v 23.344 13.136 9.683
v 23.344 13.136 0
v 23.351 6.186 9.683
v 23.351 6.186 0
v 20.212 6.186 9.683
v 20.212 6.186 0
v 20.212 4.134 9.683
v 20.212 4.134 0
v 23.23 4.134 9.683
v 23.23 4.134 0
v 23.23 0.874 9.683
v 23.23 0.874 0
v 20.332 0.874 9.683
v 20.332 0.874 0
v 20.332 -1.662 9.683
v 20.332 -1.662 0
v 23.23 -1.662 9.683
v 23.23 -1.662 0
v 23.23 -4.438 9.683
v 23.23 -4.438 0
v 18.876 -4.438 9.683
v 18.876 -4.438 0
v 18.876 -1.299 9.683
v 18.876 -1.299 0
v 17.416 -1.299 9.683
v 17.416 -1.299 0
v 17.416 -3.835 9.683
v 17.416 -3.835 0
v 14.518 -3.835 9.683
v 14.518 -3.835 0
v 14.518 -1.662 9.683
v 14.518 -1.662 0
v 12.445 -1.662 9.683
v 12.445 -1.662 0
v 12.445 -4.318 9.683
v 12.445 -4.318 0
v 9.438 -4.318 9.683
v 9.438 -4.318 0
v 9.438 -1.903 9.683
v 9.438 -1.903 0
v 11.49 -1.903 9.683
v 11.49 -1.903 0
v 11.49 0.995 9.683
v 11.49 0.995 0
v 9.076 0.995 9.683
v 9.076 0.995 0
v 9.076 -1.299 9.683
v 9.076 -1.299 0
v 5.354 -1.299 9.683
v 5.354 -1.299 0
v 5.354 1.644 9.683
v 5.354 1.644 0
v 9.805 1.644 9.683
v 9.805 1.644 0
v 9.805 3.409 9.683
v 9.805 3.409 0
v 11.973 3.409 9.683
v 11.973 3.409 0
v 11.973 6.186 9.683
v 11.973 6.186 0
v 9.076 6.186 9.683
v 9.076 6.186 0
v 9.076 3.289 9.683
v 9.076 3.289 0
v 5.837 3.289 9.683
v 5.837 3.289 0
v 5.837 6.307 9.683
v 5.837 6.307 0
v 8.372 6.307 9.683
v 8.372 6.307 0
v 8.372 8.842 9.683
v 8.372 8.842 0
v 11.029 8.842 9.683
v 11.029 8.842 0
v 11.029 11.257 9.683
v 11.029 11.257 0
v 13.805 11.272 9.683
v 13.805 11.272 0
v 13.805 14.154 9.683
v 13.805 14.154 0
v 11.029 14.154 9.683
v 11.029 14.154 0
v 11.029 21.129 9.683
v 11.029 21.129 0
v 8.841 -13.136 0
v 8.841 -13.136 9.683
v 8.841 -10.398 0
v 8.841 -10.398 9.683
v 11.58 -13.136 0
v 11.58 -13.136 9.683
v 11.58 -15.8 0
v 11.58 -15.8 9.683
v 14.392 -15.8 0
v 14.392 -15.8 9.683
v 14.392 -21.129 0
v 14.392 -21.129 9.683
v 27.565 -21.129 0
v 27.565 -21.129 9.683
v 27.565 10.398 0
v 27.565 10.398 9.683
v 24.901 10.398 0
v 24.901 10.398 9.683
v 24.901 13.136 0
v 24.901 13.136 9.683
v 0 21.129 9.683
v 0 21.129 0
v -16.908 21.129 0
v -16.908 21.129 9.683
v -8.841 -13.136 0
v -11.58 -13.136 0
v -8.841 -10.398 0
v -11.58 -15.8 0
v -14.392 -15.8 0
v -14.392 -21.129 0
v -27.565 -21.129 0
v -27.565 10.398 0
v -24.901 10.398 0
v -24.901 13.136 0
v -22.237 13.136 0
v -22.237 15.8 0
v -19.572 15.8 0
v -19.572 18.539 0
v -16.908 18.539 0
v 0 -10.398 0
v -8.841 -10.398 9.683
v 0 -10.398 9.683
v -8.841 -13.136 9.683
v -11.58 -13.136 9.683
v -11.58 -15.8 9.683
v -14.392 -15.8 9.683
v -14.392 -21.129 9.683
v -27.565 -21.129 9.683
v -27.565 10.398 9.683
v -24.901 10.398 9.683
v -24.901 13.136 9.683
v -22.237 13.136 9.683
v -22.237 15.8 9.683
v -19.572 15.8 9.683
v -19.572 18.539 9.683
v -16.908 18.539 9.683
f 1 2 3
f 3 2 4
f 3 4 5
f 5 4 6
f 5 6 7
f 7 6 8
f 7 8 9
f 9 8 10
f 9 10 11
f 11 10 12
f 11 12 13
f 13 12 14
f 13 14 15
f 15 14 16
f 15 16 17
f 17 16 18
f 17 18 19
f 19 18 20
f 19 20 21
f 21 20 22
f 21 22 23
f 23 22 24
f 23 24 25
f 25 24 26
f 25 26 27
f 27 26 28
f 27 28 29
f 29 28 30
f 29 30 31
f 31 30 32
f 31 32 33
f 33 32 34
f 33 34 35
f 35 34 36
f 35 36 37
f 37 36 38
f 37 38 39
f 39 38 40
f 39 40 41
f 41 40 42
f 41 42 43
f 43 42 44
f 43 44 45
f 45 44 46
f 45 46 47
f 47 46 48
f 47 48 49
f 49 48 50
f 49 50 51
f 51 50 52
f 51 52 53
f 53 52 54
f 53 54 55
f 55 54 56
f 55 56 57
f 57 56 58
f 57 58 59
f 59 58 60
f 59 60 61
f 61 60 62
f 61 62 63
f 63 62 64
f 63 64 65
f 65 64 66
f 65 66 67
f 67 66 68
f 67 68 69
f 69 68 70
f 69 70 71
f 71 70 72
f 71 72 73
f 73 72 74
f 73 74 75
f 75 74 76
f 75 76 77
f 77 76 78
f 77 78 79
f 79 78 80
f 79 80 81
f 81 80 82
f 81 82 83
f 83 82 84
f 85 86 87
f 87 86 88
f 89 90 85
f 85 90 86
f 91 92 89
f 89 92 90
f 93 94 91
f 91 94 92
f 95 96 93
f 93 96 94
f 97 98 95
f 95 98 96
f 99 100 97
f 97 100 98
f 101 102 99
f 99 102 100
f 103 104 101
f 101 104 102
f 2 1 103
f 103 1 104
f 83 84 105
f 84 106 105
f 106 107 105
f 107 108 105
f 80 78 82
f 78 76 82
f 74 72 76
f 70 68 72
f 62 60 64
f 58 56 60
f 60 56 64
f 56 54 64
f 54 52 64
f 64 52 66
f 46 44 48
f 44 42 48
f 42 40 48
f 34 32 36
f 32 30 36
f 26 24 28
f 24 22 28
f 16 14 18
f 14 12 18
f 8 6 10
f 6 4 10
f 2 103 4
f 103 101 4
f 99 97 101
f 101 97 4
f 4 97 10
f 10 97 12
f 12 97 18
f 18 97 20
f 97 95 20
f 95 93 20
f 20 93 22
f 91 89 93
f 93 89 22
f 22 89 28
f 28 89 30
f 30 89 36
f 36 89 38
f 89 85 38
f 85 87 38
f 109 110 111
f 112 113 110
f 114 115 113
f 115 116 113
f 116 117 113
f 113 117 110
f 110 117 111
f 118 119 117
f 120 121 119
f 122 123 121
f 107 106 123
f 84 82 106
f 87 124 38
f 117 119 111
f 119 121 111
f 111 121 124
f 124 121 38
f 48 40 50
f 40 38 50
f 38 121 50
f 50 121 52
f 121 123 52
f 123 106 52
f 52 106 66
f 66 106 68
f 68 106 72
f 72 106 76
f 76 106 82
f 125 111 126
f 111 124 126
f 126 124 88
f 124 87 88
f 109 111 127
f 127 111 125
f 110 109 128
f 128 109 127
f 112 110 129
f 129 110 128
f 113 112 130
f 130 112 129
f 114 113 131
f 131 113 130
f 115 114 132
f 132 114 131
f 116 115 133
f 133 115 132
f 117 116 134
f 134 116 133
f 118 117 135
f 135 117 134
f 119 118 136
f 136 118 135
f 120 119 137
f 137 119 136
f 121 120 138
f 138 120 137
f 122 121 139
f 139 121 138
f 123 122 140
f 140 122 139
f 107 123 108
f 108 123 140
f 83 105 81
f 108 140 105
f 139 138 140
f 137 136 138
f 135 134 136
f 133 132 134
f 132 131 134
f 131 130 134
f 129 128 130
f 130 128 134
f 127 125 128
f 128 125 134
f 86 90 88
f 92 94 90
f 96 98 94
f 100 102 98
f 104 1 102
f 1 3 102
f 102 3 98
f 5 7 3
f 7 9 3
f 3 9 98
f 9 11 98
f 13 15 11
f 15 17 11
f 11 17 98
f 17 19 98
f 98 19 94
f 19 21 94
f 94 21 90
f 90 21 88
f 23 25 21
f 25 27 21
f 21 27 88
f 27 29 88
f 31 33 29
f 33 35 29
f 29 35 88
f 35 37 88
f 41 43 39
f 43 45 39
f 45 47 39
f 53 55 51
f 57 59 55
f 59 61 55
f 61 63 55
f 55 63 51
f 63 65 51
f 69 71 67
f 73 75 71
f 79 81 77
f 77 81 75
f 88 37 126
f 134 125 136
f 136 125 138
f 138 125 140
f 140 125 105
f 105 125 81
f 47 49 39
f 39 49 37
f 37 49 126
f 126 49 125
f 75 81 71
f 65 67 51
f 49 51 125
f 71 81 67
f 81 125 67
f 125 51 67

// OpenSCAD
module invaders_v2_sheild4() 
{
	polyhedron(
		points=[
			[23.34395, 13.13624, 9.683392],
			[23.34395, 13.13624, 4.440892e-16],
			[23.35063, 6.186107, 9.683389],
			[23.35063, 6.186107, 9.683389],
			[23.34395, 13.13624, 4.440892e-16],
			[23.35063, 6.186107, 8.881784e-16],
			[23.35063, 6.186107, 9.683389],
			[23.35063, 6.186107, 8.881784e-16],
			[20.21159, 6.186107, 9.683389],
			[20.21159, 6.186107, 9.683389],
			[23.35063, 6.186107, 8.881784e-16],
			[20.21159, 6.186107, 8.881784e-16],
			[20.21159, 6.186107, 9.683389],
			[20.21159, 6.186107, 8.881784e-16],
			[20.21159, 4.133647, 9.683389],
			[20.21159, 4.133647, 9.683389],
			[20.21159, 6.186107, 8.881784e-16],
			[20.21159, 4.133647, 9.992007e-16],
			[20.21159, 4.133647, 9.683389],
			[20.21159, 4.133647, 9.992007e-16],
			[23.2299, 4.133647, 9.683389],
			[23.2299, 4.133647, 9.683389],
			[20.21159, 4.133647, 9.992007e-16],
			[23.2299, 4.133647, 9.992007e-16],
			[23.2299, 4.133647, 9.683389],
			[23.2299, 4.133647, 9.992007e-16],
			[23.2299, 0.8738546, 9.683389],
			[23.2299, 0.8738546, 9.683389],
			[23.2299, 4.133647, 9.992007e-16],
			[23.2299, 0.8738546, 1.221245e-15],
			[23.2299, 0.8738546, 9.683389],
			[23.2299, 0.8738546, 1.221245e-15],
			[20.33232, 0.8738546, 9.683389],
			[20.33232, 0.8738546, 9.683389],
			[23.2299, 0.8738546, 1.221245e-15],
			[20.33232, 0.8738546, 1.221245e-15],
			[20.33232, 0.8738546, 9.683389],
			[20.33232, 0.8738546, 1.221245e-15],
			[20.33232, -1.661538, 9.683389],
			[20.33232, -1.661538, 9.683389],
			[20.33232, 0.8738546, 1.221245e-15],
			[20.33232, -1.661538, 1.332268e-15],
			[20.33232, -1.661538, 9.683389],
			[20.33232, -1.661538, 1.332268e-15],
			[23.2299, -1.661538, 9.683389],
			[23.2299, -1.661538, 9.683389],
			[20.33232, -1.661538, 1.332268e-15],
			[23.2299, -1.661538, 1.332268e-15],
			[23.2299, -1.661538, 9.683389],
			[23.2299, -1.661538, 1.332268e-15],
			[23.2299, -4.438397, 9.683389],
			[23.2299, -4.438397, 9.683389],
			[23.2299, -1.661538, 1.332268e-15],
			[23.2299, -4.438397, 1.554312e-15],
			[23.2299, -4.438397, 9.683389],
			[23.2299, -4.438397, 1.554312e-15],
			[18.87621, -4.438397, 9.683389],
			[18.87621, -4.438397, 9.683389],
			[23.2299, -4.438397, 1.554312e-15],
			[18.87621, -4.438397, 1.554312e-15],
			[18.87621, -4.438397, 9.683389],
			[18.87621, -4.438397, 1.554312e-15],
			[18.87621, -1.29934, 9.683389],
			[18.87621, -1.29934, 9.683389],
			[18.87621, -4.438397, 1.554312e-15],
			[18.87621, -1.29934, 1.332268e-15],
			[18.87621, -1.29934, 9.683389],
			[18.87621, -1.29934, 1.332268e-15],
			[17.41609, -1.29934, 9.683389],
			[17.41609, -1.29934, 9.683389],
			[18.87621, -1.29934, 1.332268e-15],
			[17.41609, -1.29934, 1.332268e-15],
			[17.41609, -1.29934, 9.683389],
			[17.41609, -1.29934, 1.332268e-15],
			[17.41609, -3.834733, 9.683389],
			[17.41609, -3.834733, 9.683389],
			[17.41609, -1.29934, 1.332268e-15],
			[17.41609, -3.834733, 1.44329e-15],
			[17.41609, -3.834733, 9.683389],
			[17.41609, -3.834733, 1.44329e-15],
			[14.51848, -3.834733, 9.683389],
			[14.51848, -3.834733, 9.683389],
			[17.41609, -3.834733, 1.44329e-15],
			[14.51848, -3.834733, 1.44329e-15],
			[14.51848, -3.834733, 9.683389],
			[14.51848, -3.834733, 1.44329e-15],
			[14.51848, -1.661538, 9.683389],
			[14.51848, -1.661538, 9.683389],
			[14.51848, -3.834733, 1.44329e-15],
			[14.51848, -1.661538, 1.332268e-15],
			[14.51848, -1.661538, 9.683389],
			[14.51848, -1.661538, 1.332268e-15],
			[12.44484, -1.661538, 9.683389],
			[12.44484, -1.661538, 9.683389],
			[14.51848, -1.661538, 1.332268e-15],
			[12.44484, -1.661538, 1.332268e-15],
			[12.44484, -1.661538, 9.683389],
			[12.44484, -1.661538, 1.332268e-15],
			[12.44484, -4.317666, 9.683389],
			[12.44484, -4.317666, 9.683389],
			[12.44484, -1.661538, 1.332268e-15],
			[12.44484, -4.317666, 1.554312e-15],
			[12.44484, -4.317666, 9.683389],
			[12.44484, -4.317666, 1.554312e-15],
			[9.43779, -4.317666, 9.683389],
			[9.43779, -4.317666, 9.683389],
			[12.44484, -4.317666, 1.554312e-15],
			[9.43779, -4.317666, 1.554312e-15],
			[9.43779, -4.317666, 9.683389],
			[9.43779, -4.317666, 1.554312e-15],
			[9.43779, -1.903005, 9.683389],
			[9.43779, -1.903005, 9.683389],
			[9.43779, -4.317666, 1.554312e-15],
			[9.43779, -1.903005, 1.332268e-15],
			[9.43779, -1.903005, 9.683389],
			[9.43779, -1.903005, 1.332268e-15],
			[11.49025, -1.903005, 9.683389],
			[11.49025, -1.903005, 9.683389],
			[9.43779, -1.903005, 1.332268e-15],
			[11.49025, -1.903005, 1.332268e-15],
			[11.49025, -1.903005, 9.683389],
			[11.49025, -1.903005, 1.332268e-15],
			[11.49025, 0.994586, 9.683389],
			[11.49025, 0.994586, 9.683389],
			[11.49025, -1.903005, 1.332268e-15],
			[11.49025, 0.994586, 1.221245e-15],
			[11.49025, 0.994586, 9.683389],
			[11.49025, 0.994586, 1.221245e-15],
			[9.075607, 0.994586, 9.683389],
			[9.075607, 0.994586, 9.683389],
			[11.49025, 0.994586, 1.221245e-15],
			[9.075607, 0.994586, 1.221245e-15],
			[9.075607, 0.994586, 9.683389],
			[9.075607, 0.994586, 1.221245e-15],
			[9.075607, -1.29934, 9.683389],
			[9.075607, -1.29934, 9.683389],
			[9.075607, 0.994586, 1.221245e-15],
			[9.075607, -1.29934, 1.332268e-15],
			[9.075607, -1.29934, 9.683389],
			[9.075607, -1.29934, 1.332268e-15],
			[5.35408, -1.29934, 9.683389],
			[5.35408, -1.29934, 9.683389],
			[9.075607, -1.29934, 1.332268e-15],
			[5.35408, -1.29934, 1.332268e-15],
			[5.35408, -1.29934, 9.683389],
			[5.35408, -1.29934, 1.332268e-15],
			[5.35408, 1.644248, 9.683389],
			[5.35408, 1.644248, 9.683389],
			[5.35408, -1.29934, 1.332268e-15],
			[5.35408, 1.644248, 1.110223e-15],
			[5.35408, 1.644248, 9.683389],
			[5.35408, 1.644248, 1.110223e-15],
			[9.804977, 1.644248, 9.683389],
			[9.804977, 1.644248, 9.683389],
			[5.35408, 1.644248, 1.110223e-15],
			[9.804977, 1.644248, 1.110223e-15],
			[9.804977, 1.644248, 9.683389],
			[9.804977, 1.644248, 1.110223e-15],
			[9.804977, 3.409247, 9.683389],
			[9.804977, 3.409247, 9.683389],
			[9.804977, 1.644248, 1.110223e-15],
			[9.804977, 3.409247, 9.992007e-16],
			[9.804977, 3.409247, 9.683389],
			[9.804977, 3.409247, 9.992007e-16],
			[11.97319, 3.409247, 9.683389],
			[11.97319, 3.409247, 9.683389],
			[9.804977, 3.409247, 9.992007e-16],
			[11.97319, 3.409247, 9.992007e-16],
			[11.97319, 3.409247, 9.683389],
			[11.97319, 3.409247, 9.992007e-16],
			[11.97319, 6.186107, 9.683389],
			[11.97319, 6.186107, 9.683389],
			[11.97319, 3.409247, 9.992007e-16],
			[11.97319, 6.186107, 8.881784e-16],
			[11.97319, 6.186107, 9.683389],
			[11.97319, 6.186107, 8.881784e-16],
			[9.075607, 6.186107, 9.683389],
			[9.075607, 6.186107, 9.683389],
			[11.97319, 6.186107, 8.881784e-16],
			[9.075607, 6.186107, 8.881784e-16],
			[9.075607, 6.186107, 9.683389],
			[9.075607, 6.186107, 8.881784e-16],
			[9.075607, 3.288516, 9.683389],
			[9.075607, 3.288516, 9.683389],
			[9.075607, 6.186107, 8.881784e-16],
			[9.075607, 3.288516, 9.992007e-16],
			[9.075607, 3.288516, 9.683389],
			[9.075607, 3.288516, 9.992007e-16],
			[5.837021, 3.288516, 9.683389],
			[5.837021, 3.288516, 9.683389],
			[9.075607, 3.288516, 9.992007e-16],
			[5.837021, 3.288516, 9.992007e-16],
			[5.837021, 3.288516, 9.683389],
			[5.837021, 3.288516, 9.992007e-16],
			[5.837021, 6.306842, 9.683389],
			[5.837021, 6.306842, 9.683389],
			[5.837021, 3.288516, 9.992007e-16],
			[5.837021, 6.306842, 8.881784e-16],
			[5.837021, 6.306842, 9.683389],
			[5.837021, 6.306842, 8.881784e-16],
			[8.372421, 6.306842, 9.683389],
			[8.372421, 6.306842, 9.683389],
			[5.837021, 6.306842, 8.881784e-16],
			[8.372421, 6.306842, 8.881784e-16],
			[8.372421, 6.306842, 9.683389],
			[8.372421, 6.306842, 8.881784e-16],
			[8.372421, 8.842235, 9.683389],
			[8.372421, 8.842235, 9.683389],
			[8.372421, 6.306842, 8.881784e-16],
			[8.372421, 8.842235, 6.661338e-16],
			[8.372421, 8.842235, 9.683389],
			[8.372421, 8.842235, 6.661338e-16],
			[11.02855, 8.842235, 9.683389],
			[11.02855, 8.842235, 9.683389],
			[8.372421, 8.842235, 6.661338e-16],
			[11.02855, 8.842235, 6.661338e-16],
			[11.02855, 8.842235, 9.683389],
			[11.02855, 8.842235, 6.661338e-16],
			[11.02855, 11.2569, 9.683389],
			[11.02855, 11.2569, 9.683389],
			[11.02855, 8.842235, 6.661338e-16],
			[11.02855, 11.2569, 5.551115e-16],
			[11.02855, 11.2569, 9.683389],
			[11.02855, 11.2569, 5.551115e-16],
			[13.80537, 11.27239, 9.683389],
			[13.80537, 11.27239, 9.683389],
			[11.02855, 11.2569, 5.551115e-16],
			[13.80537, 11.27239, 5.551115e-16],
			[13.80537, 11.27239, 9.683389],
			[13.80537, 11.27239, 5.551115e-16],
			[13.80537, 14.15449, 9.683389],
			[13.80537, 14.15449, 9.683389],
			[13.80537, 11.27239, 5.551115e-16],
			[13.80537, 14.15449, 4.440892e-16],
			[13.80537, 14.15449, 9.683389],
			[13.80537, 14.15449, 4.440892e-16],
			[11.02855, 14.15449, 9.683389],
			[11.02855, 14.15449, 9.683389],
			[13.80537, 14.15449, 4.440892e-16],
			[11.02855, 14.15449, 4.440892e-16],
			[11.02855, 14.15449, 9.683389],
			[11.02855, 14.15449, 4.440892e-16],
			[11.02855, 21.12899, 9.683392],
			[11.02855, 21.12899, 9.683392],
			[11.02855, 14.15449, 4.440892e-16],
			[11.02855, 21.12899, 0.0],
			[8.841354, -13.13623, 2.109424e-15],
			[8.841354, -13.13623, 9.683392],
			[8.841354, -10.39798, 1.887379e-15],
			[8.841354, -10.39798, 1.887379e-15],
			[8.841354, -13.13623, 9.683392],
			[8.841354, -10.39798, 9.683392],
			[11.57961, -13.13623, 2.109424e-15],
			[11.57961, -13.13623, 9.683392],
			[8.841354, -13.13623, 2.109424e-15],
			[8.841354, -13.13623, 2.109424e-15],
			[11.57961, -13.13623, 9.683392],
			[8.841354, -13.13623, 9.683392],
			[11.57961, -15.80049, 2.220446e-15],
			[11.57961, -15.80049, 9.683392],
			[11.57961, -13.13623, 2.109424e-15],
			[11.57961, -13.13623, 2.109424e-15],
			[11.57961, -15.80049, 9.683392],
			[11.57961, -13.13623, 9.683392],
			[14.39189, -15.80049, 2.220446e-15],
			[14.39189, -15.80049, 9.683392],
			[11.57961, -15.80049, 2.220446e-15],
			[11.57961, -15.80049, 2.220446e-15],
			[14.39189, -15.80049, 9.683392],
			[11.57961, -15.80049, 9.683392],
			[14.39189, -21.12899, 2.553513e-15],
			[14.39189, -21.12899, 9.683392],
			[14.39189, -15.80049, 2.220446e-15],
			[14.39189, -15.80049, 2.220446e-15],
			[14.39189, -21.12899, 9.683392],
			[14.39189, -15.80049, 9.683392],
			[27.56511, -21.12899, 2.553513e-15],
			[27.56511, -21.12899, 9.683392],
			[14.39189, -21.12899, 2.553513e-15],
			[14.39189, -21.12899, 2.553513e-15],
			[27.56511, -21.12899, 9.683392],
			[14.39189, -21.12899, 9.683392],
			[27.56511, 10.39798, 6.661338e-16],
			[27.56511, 10.39798, 9.683392],
			[27.56511, -21.12899, 2.553513e-15],
			[27.56511, -21.12899, 2.553513e-15],
			[27.56511, 10.39798, 9.683392],
			[27.56511, -21.12899, 9.683392],
			[24.90086, 10.39798, 6.661338e-16],
			[24.90086, 10.39798, 9.683392],
			[27.56511, 10.39798, 6.661338e-16],
			[27.56511, 10.39798, 6.661338e-16],
			[24.90086, 10.39798, 9.683392],
			[27.56511, 10.39798, 9.683392],
			[24.90086, 13.13624, 4.440892e-16],
			[24.90086, 13.13624, 9.683392],
			[24.90086, 10.39798, 6.661338e-16],
			[24.90086, 10.39798, 6.661338e-16],
			[24.90086, 13.13624, 9.683392],
			[24.90086, 10.39798, 9.683392],
			[23.34395, 13.13624, 4.440892e-16],
			[23.34395, 13.13624, 9.683392],
			[24.90086, 13.13624, 4.440892e-16],
			[24.90086, 13.13624, 4.440892e-16],
			[23.34395, 13.13624, 9.683392],
			[24.90086, 13.13624, 9.683392],
			[11.02855, 21.12899, 9.683392],
			[11.02855, 21.12899, 0.0],
			[0.0, 21.12899, 9.683392],
			[11.02855, 21.12899, 0.0],
			[0.0, 21.12899, 0.0],
			[0.0, 21.12899, 9.683392],
			[0.0, 21.12899, 0.0],
			[-16.9081, 21.12899, 0.0],
			[0.0, 21.12899, 9.683392],
			[-16.9081, 21.12899, 0.0],
			[-16.9081, 21.12899, 9.683392],
			[0.0, 21.12899, 9.683392],
			[13.80537, 14.15449, 4.440892e-16],
			[13.80537, 11.27239, 5.551115e-16],
			[11.02855, 14.15449, 4.440892e-16],
			[13.80537, 11.27239, 5.551115e-16],
			[11.02855, 11.2569, 5.551115e-16],
			[11.02855, 14.15449, 4.440892e-16],
			[11.02855, 8.842235, 6.661338e-16],
			[8.372421, 8.842235, 6.661338e-16],
			[11.02855, 11.2569, 5.551115e-16],
			[8.372421, 6.306842, 8.881784e-16],
			[5.837021, 6.306842, 8.881784e-16],
			[8.372421, 8.842235, 6.661338e-16],
			[9.075607, 6.186107, 8.881784e-16],
			[11.97319, 6.186107, 8.881784e-16],
			[9.075607, 3.288516, 9.992007e-16],
			[11.97319, 3.409247, 9.992007e-16],
			[9.804977, 3.409247, 9.992007e-16],
			[11.97319, 6.186107, 8.881784e-16],
			[11.97319, 6.186107, 8.881784e-16],
			[9.804977, 3.409247, 9.992007e-16],
			[9.075607, 3.288516, 9.992007e-16],
			[9.804977, 3.409247, 9.992007e-16],
			[9.804977, 1.644248, 1.110223e-15],
			[9.075607, 3.288516, 9.992007e-16],
			[9.804977, 1.644248, 1.110223e-15],
			[5.35408, 1.644248, 1.110223e-15],
			[9.075607, 3.288516, 9.992007e-16],
			[9.075607, 3.288516, 9.992007e-16],
			[5.35408, 1.644248, 1.110223e-15],
			[5.837021, 3.288516, 9.992007e-16],
			[9.075607, 0.994586, 1.221245e-15],
			[11.49025, 0.994586, 1.221245e-15],
			[9.075607, -1.29934, 1.332268e-15],
			[11.49025, 0.994586, 1.221245e-15],
			[11.49025, -1.903005, 1.332268e-15],
			[9.075607, -1.29934, 1.332268e-15],
			[11.49025, -1.903005, 1.332268e-15],
			[9.43779, -1.903005, 1.332268e-15],
			[9.075607, -1.29934, 1.332268e-15],
			[12.44484, -1.661538, 1.332268e-15],
			[14.51848, -1.661538, 1.332268e-15],
			[12.44484, -4.317666, 1.554312e-15],
			[14.51848, -1.661538, 1.332268e-15],
			[14.51848, -3.834733, 1.44329e-15],
			[12.44484, -4.317666, 1.554312e-15],
			[17.41609, -1.29934, 1.332268e-15],
			[18.87621, -1.29934, 1.332268e-15],
			[17.41609, -3.834733, 1.44329e-15],
			[18.87621, -1.29934, 1.332268e-15],
			[18.87621, -4.438397, 1.554312e-15],
			[17.41609, -3.834733, 1.44329e-15],
			[20.33232, -1.661538, 1.332268e-15],
			[20.33232, 0.8738546, 1.221245e-15],
			[23.2299, -1.661538, 1.332268e-15],
			[20.33232, 0.8738546, 1.221245e-15],
			[23.2299, 0.8738546, 1.221245e-15],
			[23.2299, -1.661538, 1.332268e-15],
			[20.21159, 4.133647, 9.992007e-16],
			[20.21159, 6.186107, 8.881784e-16],
			[23.2299, 4.133647, 9.992007e-16],
			[20.21159, 6.186107, 8.881784e-16],
			[23.35063, 6.186107, 8.881784e-16],
			[23.2299, 4.133647, 9.992007e-16],
			[23.34395, 13.13624, 4.440892e-16],
			[24.90086, 13.13624, 4.440892e-16],
			[23.35063, 6.186107, 8.881784e-16],
			[24.90086, 13.13624, 4.440892e-16],
			[24.90086, 10.39798, 6.661338e-16],
			[23.35063, 6.186107, 8.881784e-16],
			[27.56511, 10.39798, 6.661338e-16],
			[27.56511, -21.12899, 2.553513e-15],
			[24.90086, 10.39798, 6.661338e-16],
			[24.90086, 10.39798, 6.661338e-16],
			[27.56511, -21.12899, 2.553513e-15],
			[23.35063, 6.186107, 8.881784e-16],
			[23.35063, 6.186107, 8.881784e-16],
			[27.56511, -21.12899, 2.553513e-15],
			[23.2299, 4.133647, 9.992007e-16],
			[23.2299, 4.133647, 9.992007e-16],
			[27.56511, -21.12899, 2.553513e-15],
			[23.2299, 0.8738546, 1.221245e-15],
			[23.2299, 0.8738546, 1.221245e-15],
			[27.56511, -21.12899, 2.553513e-15],
			[23.2299, -1.661538, 1.332268e-15],
			[23.2299, -1.661538, 1.332268e-15],
			[27.56511, -21.12899, 2.553513e-15],
			[23.2299, -4.438397, 1.554312e-15],
			[27.56511, -21.12899, 2.553513e-15],
			[14.39189, -21.12899, 2.553513e-15],
			[23.2299, -4.438397, 1.554312e-15],
			[14.39189, -21.12899, 2.553513e-15],
			[14.39189, -15.80049, 2.220446e-15],
			[23.2299, -4.438397, 1.554312e-15],
			[23.2299, -4.438397, 1.554312e-15],
			[14.39189, -15.80049, 2.220446e-15],
			[18.87621, -4.438397, 1.554312e-15],
			[11.57961, -15.80049, 2.220446e-15],
			[11.57961, -13.13623, 2.109424e-15],
			[14.39189, -15.80049, 2.220446e-15],
			[14.39189, -15.80049, 2.220446e-15],
			[11.57961, -13.13623, 2.109424e-15],
			[18.87621, -4.438397, 1.554312e-15],
			[18.87621, -4.438397, 1.554312e-15],
			[11.57961, -13.13623, 2.109424e-15],
			[17.41609, -3.834733, 1.44329e-15],
			[17.41609, -3.834733, 1.44329e-15],
			[11.57961, -13.13623, 2.109424e-15],
			[14.51848, -3.834733, 1.44329e-15],
			[14.51848, -3.834733, 1.44329e-15],
			[11.57961, -13.13623, 2.109424e-15],
			[12.44484, -4.317666, 1.554312e-15],
			[12.44484, -4.317666, 1.554312e-15],
			[11.57961, -13.13623, 2.109424e-15],
			[9.43779, -4.317666, 1.554312e-15],
			[11.57961, -13.13623, 2.109424e-15],
			[8.841354, -13.13623, 2.109424e-15],
			[9.43779, -4.317666, 1.554312e-15],
			[8.841354, -13.13623, 2.109424e-15],
			[8.841354, -10.39798, 1.887379e-15],
			[9.43779, -4.317666, 1.554312e-15],
			[-8.841339, -13.13623, 2.109424e-15],
			[-11.57961, -13.13623, 2.109424e-15],
			[-8.841339, -10.39798, 1.887379e-15],
			[-11.57961, -15.80049, 2.220446e-15],
			[-14.39186, -15.80049, 2.220446e-15],
			[-11.57961, -13.13623, 2.109424e-15],
			[-14.39186, -21.12899, 2.553513e-15],
			[-27.56511, -21.12899, 2.553513e-15],
			[-14.39186, -15.80049, 2.220446e-15],
			[-27.56511, -21.12899, 2.553513e-15],
			[-27.56511, 10.39798, 6.661338e-16],
			[-14.39186, -15.80049, 2.220446e-15],
			[-27.56511, 10.39798, 6.661338e-16],
			[-24.90086, 10.39798, 6.661338e-16],
			[-14.39186, -15.80049, 2.220446e-15],
			[-14.39186, -15.80049, 2.220446e-15],
			[-24.90086, 10.39798, 6.661338e-16],
			[-11.57961, -13.13623, 2.109424e-15],
			[-11.57961, -13.13623, 2.109424e-15],
			[-24.90086, 10.39798, 6.661338e-16],
			[-8.841339, -10.39798, 1.887379e-15],
			[-24.90086, 13.13624, 4.440892e-16],
			[-22.2366, 13.13624, 4.440892e-16],
			[-24.90086, 10.39798, 6.661338e-16],
			[-22.2366, 15.80049, 3.330669e-16],
			[-19.57234, 15.80049, 3.330669e-16],
			[-22.2366, 13.13624, 4.440892e-16],
			[-19.57234, 18.53874, 1.110223e-16],
			[-16.9081, 18.53874, 1.110223e-16],
			[-19.57234, 15.80049, 3.330669e-16],
			[-16.9081, 21.12899, 0.0],
			[0.0, 21.12899, 0.0],
			[-16.9081, 18.53874, 1.110223e-16],
			[11.02855, 21.12899, 0.0],
			[11.02855, 14.15449, 4.440892e-16],
			[0.0, 21.12899, 0.0],
			[8.841354, -10.39798, 1.887379e-15],
			[0.0, -10.39798, 1.887379e-15],
			[9.43779, -4.317666, 1.554312e-15],
			[-24.90086, 10.39798, 6.661338e-16],
			[-22.2366, 13.13624, 4.440892e-16],
			[-8.841339, -10.39798, 1.887379e-15],
			[-22.2366, 13.13624, 4.440892e-16],
			[-19.57234, 15.80049, 3.330669e-16],
			[-8.841339, -10.39798, 1.887379e-15],
			[-8.841339, -10.39798, 1.887379e-15],
			[-19.57234, 15.80049, 3.330669e-16],
			[0.0, -10.39798, 1.887379e-15],
			[0.0, -10.39798, 1.887379e-15],
			[-19.57234, 15.80049, 3.330669e-16],
			[9.43779, -4.317666, 1.554312e-15],
			[9.075607, -1.29934, 1.332268e-15],
			[9.43779, -1.903005, 1.332268e-15],
			[5.35408, -1.29934, 1.332268e-15],
			[9.43779, -1.903005, 1.332268e-15],
			[9.43779, -4.317666, 1.554312e-15],
			[5.35408, -1.29934, 1.332268e-15],
			[9.43779, -4.317666, 1.554312e-15],
			[-19.57234, 15.80049, 3.330669e-16],
			[5.35408, -1.29934, 1.332268e-15],
			[5.35408, -1.29934, 1.332268e-15],
			[-19.57234, 15.80049, 3.330669e-16],
			[5.35408, 1.644248, 1.110223e-15],
			[-19.57234, 15.80049, 3.330669e-16],
			[-16.9081, 18.53874, 1.110223e-16],
			[5.35408, 1.644248, 1.110223e-15],
			[-16.9081, 18.53874, 1.110223e-16],
			[0.0, 21.12899, 0.0],
			[5.35408, 1.644248, 1.110223e-15],
			[5.35408, 1.644248, 1.110223e-15],
			[0.0, 21.12899, 0.0],
			[5.837021, 3.288516, 9.992007e-16],
			[5.837021, 3.288516, 9.992007e-16],
			[0.0, 21.12899, 0.0],
			[5.837021, 6.306842, 8.881784e-16],
			[5.837021, 6.306842, 8.881784e-16],
			[0.0, 21.12899, 0.0],
			[8.372421, 8.842235, 6.661338e-16],
			[8.372421, 8.842235, 6.661338e-16],
			[0.0, 21.12899, 0.0],
			[11.02855, 11.2569, 5.551115e-16],
			[11.02855, 11.2569, 5.551115e-16],
			[0.0, 21.12899, 0.0],
			[11.02855, 14.15449, 4.440892e-16],
			[-8.841339, -10.39798, 9.683392],
			[-8.841339, -10.39798, 1.887379e-15],
			[0.0, -10.39798, 9.683392],
			[-8.841339, -10.39798, 1.887379e-15],
			[0.0, -10.39798, 1.887379e-15],
			[0.0, -10.39798, 9.683392],
			[0.0, -10.39798, 9.683392],
			[0.0, -10.39798, 1.887379e-15],
			[8.841354, -10.39798, 9.683392],
			[0.0, -10.39798, 1.887379e-15],
			[8.841354, -10.39798, 1.887379e-15],
			[8.841354, -10.39798, 9.683392],
			[-8.841339, -13.13623, 2.109424e-15],
			[-8.841339, -10.39798, 1.887379e-15],
			[-8.841339, -13.13623, 9.683392],
			[-8.841339, -13.13623, 9.683392],
			[-8.841339, -10.39798, 1.887379e-15],
			[-8.841339, -10.39798, 9.683392],
			[-11.57961, -13.13623, 2.109424e-15],
			[-8.841339, -13.13623, 2.109424e-15],
			[-11.57961, -13.13623, 9.683392],
			[-11.57961, -13.13623, 9.683392],
			[-8.841339, -13.13623, 2.109424e-15],
			[-8.841339, -13.13623, 9.683392],
			[-11.57961, -15.80049, 2.220446e-15],
			[-11.57961, -13.13623, 2.109424e-15],
			[-11.57961, -15.80049, 9.683392],
			[-11.57961, -15.80049, 9.683392],
			[-11.57961, -13.13623, 2.109424e-15],
			[-11.57961, -13.13623, 9.683392],
			[-14.39186, -15.80049, 2.220446e-15],
			[-11.57961, -15.80049, 2.220446e-15],
			[-14.39186, -15.80049, 9.683392],
			[-14.39186, -15.80049, 9.683392],
			[-11.57961, -15.80049, 2.220446e-15],
			[-11.57961, -15.80049, 9.683392],
			[-14.39186, -21.12899, 2.553513e-15],
			[-14.39186, -15.80049, 2.220446e-15],
			[-14.39186, -21.12899, 9.683392],
			[-14.39186, -21.12899, 9.683392],
			[-14.39186, -15.80049, 2.220446e-15],
			[-14.39186, -15.80049, 9.683392],
			[-27.56511, -21.12899, 2.553513e-15],
			[-14.39186, -21.12899, 2.553513e-15],
			[-27.56511, -21.12899, 9.683392],
			[-27.56511, -21.12899, 9.683392],
			[-14.39186, -21.12899, 2.553513e-15],
			[-14.39186, -21.12899, 9.683392],
			[-27.56511, 10.39798, 6.661338e-16],
			[-27.56511, -21.12899, 2.553513e-15],
			[-27.56511, 10.39798, 9.683392],
			[-27.56511, 10.39798, 9.683392],
			[-27.56511, -21.12899, 2.553513e-15],
			[-27.56511, -21.12899, 9.683392],
			[-24.90086, 10.39798, 6.661338e-16],
			[-27.56511, 10.39798, 6.661338e-16],
			[-24.90086, 10.39798, 9.683392],
			[-24.90086, 10.39798, 9.683392],
			[-27.56511, 10.39798, 6.661338e-16],
			[-27.56511, 10.39798, 9.683392],
			[-24.90086, 13.13624, 4.440892e-16],
			[-24.90086, 10.39798, 6.661338e-16],
			[-24.90086, 13.13624, 9.683392],
			[-24.90086, 13.13624, 9.683392],
			[-24.90086, 10.39798, 6.661338e-16],
			[-24.90086, 10.39798, 9.683392],
			[-22.2366, 13.13624, 4.440892e-16],
			[-24.90086, 13.13624, 4.440892e-16],
			[-22.2366, 13.13624, 9.683392],
			[-22.2366, 13.13624, 9.683392],
			[-24.90086, 13.13624, 4.440892e-16],
			[-24.90086, 13.13624, 9.683392],
			[-22.2366, 15.80049, 3.330669e-16],
			[-22.2366, 13.13624, 4.440892e-16],
			[-22.2366, 15.80049, 9.683392],
			[-22.2366, 15.80049, 9.683392],
			[-22.2366, 13.13624, 4.440892e-16],
			[-22.2366, 13.13624, 9.683392],
			[-19.57234, 15.80049, 3.330669e-16],
			[-22.2366, 15.80049, 3.330669e-16],
			[-19.57234, 15.80049, 9.683392],
			[-19.57234, 15.80049, 9.683392],
			[-22.2366, 15.80049, 3.330669e-16],
			[-22.2366, 15.80049, 9.683392],
			[-19.57234, 18.53874, 1.110223e-16],
			[-19.57234, 15.80049, 3.330669e-16],
			[-19.57234, 18.53874, 9.683392],
			[-19.57234, 18.53874, 9.683392],
			[-19.57234, 15.80049, 3.330669e-16],
			[-19.57234, 15.80049, 9.683392],
			[-16.9081, 18.53874, 1.110223e-16],
			[-19.57234, 18.53874, 1.110223e-16],
			[-16.9081, 18.53874, 9.683392],
			[-16.9081, 18.53874, 9.683392],
			[-19.57234, 18.53874, 1.110223e-16],
			[-19.57234, 18.53874, 9.683392],
			[-16.9081, 21.12899, 0.0],
			[-16.9081, 18.53874, 1.110223e-16],
			[-16.9081, 21.12899, 9.683392],
			[-16.9081, 21.12899, 9.683392],
			[-16.9081, 18.53874, 1.110223e-16],
			[-16.9081, 18.53874, 9.683392],
			[11.02855, 21.12899, 9.683392],
			[0.0, 21.12899, 9.683392],
			[11.02855, 14.15449, 9.683389],
			[-16.9081, 21.12899, 9.683392],
			[-16.9081, 18.53874, 9.683392],
			[0.0, 21.12899, 9.683392],
			[-19.57234, 18.53874, 9.683392],
			[-19.57234, 15.80049, 9.683392],
			[-16.9081, 18.53874, 9.683392],
			[-22.2366, 15.80049, 9.683392],
			[-22.2366, 13.13624, 9.683392],
			[-19.57234, 15.80049, 9.683392],
			[-24.90086, 13.13624, 9.683392],
			[-24.90086, 10.39798, 9.683392],
			[-22.2366, 13.13624, 9.683392],
			[-27.56511, 10.39798, 9.683392],
			[-27.56511, -21.12899, 9.683392],
			[-24.90086, 10.39798, 9.683392],
			[-27.56511, -21.12899, 9.683392],
			[-14.39186, -21.12899, 9.683392],
			[-24.90086, 10.39798, 9.683392],
			[-14.39186, -21.12899, 9.683392],
			[-14.39186, -15.80049, 9.683392],
			[-24.90086, 10.39798, 9.683392],
			[-11.57961, -15.80049, 9.683392],
			[-11.57961, -13.13623, 9.683392],
			[-14.39186, -15.80049, 9.683392],
			[-14.39186, -15.80049, 9.683392],
			[-11.57961, -13.13623, 9.683392],
			[-24.90086, 10.39798, 9.683392],
			[-8.841339, -13.13623, 9.683392],
			[-8.841339, -10.39798, 9.683392],
			[-11.57961, -13.13623, 9.683392],
			[-11.57961, -13.13623, 9.683392],
			[-8.841339, -10.39798, 9.683392],
			[-24.90086, 10.39798, 9.683392],
			[8.841354, -13.13623, 9.683392],
			[11.57961, -13.13623, 9.683392],
			[8.841354, -10.39798, 9.683392],
			[11.57961, -15.80049, 9.683392],
			[14.39189, -15.80049, 9.683392],
			[11.57961, -13.13623, 9.683392],
			[14.39189, -21.12899, 9.683392],
			[27.56511, -21.12899, 9.683392],
			[14.39189, -15.80049, 9.683392],
			[27.56511, 10.39798, 9.683392],
			[24.90086, 10.39798, 9.683392],
			[27.56511, -21.12899, 9.683392],
			[24.90086, 13.13624, 9.683392],
			[23.34395, 13.13624, 9.683392],
			[24.90086, 10.39798, 9.683392],
			[23.34395, 13.13624, 9.683392],
			[23.35063, 6.186107, 9.683389],
			[24.90086, 10.39798, 9.683392],
			[24.90086, 10.39798, 9.683392],
			[23.35063, 6.186107, 9.683389],
			[27.56511, -21.12899, 9.683392],
			[20.21159, 6.186107, 9.683389],
			[20.21159, 4.133647, 9.683389],
			[23.35063, 6.186107, 9.683389],
			[20.21159, 4.133647, 9.683389],
			[23.2299, 4.133647, 9.683389],
			[23.35063, 6.186107, 9.683389],
			[23.35063, 6.186107, 9.683389],
			[23.2299, 4.133647, 9.683389],
			[27.56511, -21.12899, 9.683392],
			[23.2299, 4.133647, 9.683389],
			[23.2299, 0.8738546, 9.683389],
			[27.56511, -21.12899, 9.683392],
			[20.33232, 0.8738546, 9.683389],
			[20.33232, -1.661538, 9.683389],
			[23.2299, 0.8738546, 9.683389],
			[20.33232, -1.661538, 9.683389],
			[23.2299, -1.661538, 9.683389],
			[23.2299, 0.8738546, 9.683389],
			[23.2299, 0.8738546, 9.683389],
			[23.2299, -1.661538, 9.683389],
			[27.56511, -21.12899, 9.683392],
			[23.2299, -1.661538, 9.683389],
			[23.2299, -4.438397, 9.683389],
			[27.56511, -21.12899, 9.683392],
			[27.56511, -21.12899, 9.683392],
			[23.2299, -4.438397, 9.683389],
			[14.39189, -15.80049, 9.683392],
			[23.2299, -4.438397, 9.683389],
			[18.87621, -4.438397, 9.683389],
			[14.39189, -15.80049, 9.683392],
			[14.39189, -15.80049, 9.683392],
			[18.87621, -4.438397, 9.683389],
			[11.57961, -13.13623, 9.683392],
			[11.57961, -13.13623, 9.683392],
			[18.87621, -4.438397, 9.683389],
			[8.841354, -10.39798, 9.683392],
			[18.87621, -1.29934, 9.683389],
			[17.41609, -1.29934, 9.683389],
			[18.87621, -4.438397, 9.683389],
			[17.41609, -1.29934, 9.683389],
			[17.41609, -3.834733, 9.683389],
			[18.87621, -4.438397, 9.683389],
			[18.87621, -4.438397, 9.683389],
			[17.41609, -3.834733, 9.683389],
			[8.841354, -10.39798, 9.683392],
			[17.41609, -3.834733, 9.683389],
			[14.51848, -3.834733, 9.683389],
			[8.841354, -10.39798, 9.683392],
			[14.51848, -1.661538, 9.683389],
			[12.44484, -1.661538, 9.683389],
			[14.51848, -3.834733, 9.683389],
			[12.44484, -1.661538, 9.683389],
			[12.44484, -4.317666, 9.683389],
			[14.51848, -3.834733, 9.683389],
			[14.51848, -3.834733, 9.683389],
			[12.44484, -4.317666, 9.683389],
			[8.841354, -10.39798, 9.683392],
			[12.44484, -4.317666, 9.683389],
			[9.43779, -4.317666, 9.683389],
			[8.841354, -10.39798, 9.683392],
			[11.49025, -1.903005, 9.683389],
			[11.49025, 0.994586, 9.683389],
			[9.43779, -1.903005, 9.683389],
			[11.49025, 0.994586, 9.683389],
			[9.075607, 0.994586, 9.683389],
			[9.43779, -1.903005, 9.683389],
			[9.075607, 0.994586, 9.683389],
			[9.075607, -1.29934, 9.683389],
			[9.43779, -1.903005, 9.683389],
			[9.804977, 1.644248, 9.683389],
			[9.804977, 3.409247, 9.683389],
			[5.35408, 1.644248, 9.683389],
			[11.97319, 3.409247, 9.683389],
			[11.97319, 6.186107, 9.683389],
			[9.804977, 3.409247, 9.683389],
			[11.97319, 6.186107, 9.683389],
			[9.075607, 6.186107, 9.683389],
			[9.804977, 3.409247, 9.683389],
			[9.075607, 6.186107, 9.683389],
			[9.075607, 3.288516, 9.683389],
			[9.804977, 3.409247, 9.683389],
			[9.804977, 3.409247, 9.683389],
			[9.075607, 3.288516, 9.683389],
			[5.35408, 1.644248, 9.683389],
			[9.075607, 3.288516, 9.683389],
			[5.837021, 3.288516, 9.683389],
			[5.35408, 1.644248, 9.683389],
			[8.372421, 6.306842, 9.683389],
			[8.372421, 8.842235, 9.683389],
			[5.837021, 6.306842, 9.683389],
			[11.02855, 8.842235, 9.683389],
			[11.02855, 11.2569, 9.683389],
			[8.372421, 8.842235, 9.683389],
			[13.80537, 14.15449, 9.683389],
			[11.02855, 14.15449, 9.683389],
			[13.80537, 11.27239, 9.683389],
			[13.80537, 11.27239, 9.683389],
			[11.02855, 14.15449, 9.683389],
			[11.02855, 11.2569, 9.683389],
			[8.841354, -10.39798, 9.683392],
			[9.43779, -4.317666, 9.683389],
			[0.0, -10.39798, 9.683392],
			[-24.90086, 10.39798, 9.683392],
			[-8.841339, -10.39798, 9.683392],
			[-22.2366, 13.13624, 9.683392],
			[-22.2366, 13.13624, 9.683392],
			[-8.841339, -10.39798, 9.683392],
			[-19.57234, 15.80049, 9.683392],
			[-19.57234, 15.80049, 9.683392],
			[-8.841339, -10.39798, 9.683392],
			[-16.9081, 18.53874, 9.683392],
			[-16.9081, 18.53874, 9.683392],
			[-8.841339, -10.39798, 9.683392],
			[0.0, 21.12899, 9.683392],
			[0.0, 21.12899, 9.683392],
			[-8.841339, -10.39798, 9.683392],
			[11.02855, 14.15449, 9.683389],
			[9.075607, -1.29934, 9.683389],
			[5.35408, -1.29934, 9.683389],
			[9.43779, -1.903005, 9.683389],
			[9.43779, -1.903005, 9.683389],
			[5.35408, -1.29934, 9.683389],
			[9.43779, -4.317666, 9.683389],
			[9.43779, -4.317666, 9.683389],
			[5.35408, -1.29934, 9.683389],
			[0.0, -10.39798, 9.683392],
			[0.0, -10.39798, 9.683392],
			[5.35408, -1.29934, 9.683389],
			[-8.841339, -10.39798, 9.683392],
			[11.02855, 11.2569, 9.683389],
			[11.02855, 14.15449, 9.683389],
			[8.372421, 8.842235, 9.683389],
			[5.837021, 3.288516, 9.683389],
			[5.837021, 6.306842, 9.683389],
			[5.35408, 1.644248, 9.683389],
			[5.35408, -1.29934, 9.683389],
			[5.35408, 1.644248, 9.683389],
			[-8.841339, -10.39798, 9.683392],
			[8.372421, 8.842235, 9.683389],
			[11.02855, 14.15449, 9.683389],
			[5.837021, 6.306842, 9.683389],
			[11.02855, 14.15449, 9.683389],
			[-8.841339, -10.39798, 9.683392],
			[5.837021, 6.306842, 9.683389],
			[-8.841339, -10.39798, 9.683392],
			[5.35408, 1.644248, 9.683389],
			[5.837021, 6.306842, 9.683389]
		],
		faces=[
			[0, 1, 2],
			[3, 4, 5],
			[6, 7, 8],
			[9, 10, 11],
			[12, 13, 14],
			[15, 16, 17],
			[18, 19, 20],
			[21, 22, 23],
			[24, 25, 26],
			[27, 28, 29],
			[30, 31, 32],
			[33, 34, 35],
			[36, 37, 38],
			[39, 40, 41],
			[42, 43, 44],
			[45, 46, 47],
			[48, 49, 50],
			[51, 52, 53],
			[54, 55, 56],
			[57, 58, 59],
			[60, 61, 62],
			[63, 64, 65],
			[66, 67, 68],
			[69, 70, 71],
			[72, 73, 74],
			[75, 76, 77],
			[78, 79, 80],
			[81, 82, 83],
			[84, 85, 86],
			[87, 88, 89],
			[90, 91, 92],
			[93, 94, 95],
			[96, 97, 98],
			[99, 100, 101],
			[102, 103, 104],
			[105, 106, 107],
			[108, 109, 110],
			[111, 112, 113],
			[114, 115, 116],
			[117, 118, 119],
			[120, 121, 122],
			[123, 124, 125],
			[126, 127, 128],
			[129, 130, 131],
			[132, 133, 134],
			[135, 136, 137],
			[138, 139, 140],
			[141, 142, 143],
			[144, 145, 146],
			[147, 148, 149],
			[150, 151, 152],
			[153, 154, 155],
			[156, 157, 158],
			[159, 160, 161],
			[162, 163, 164],
			[165, 166, 167],
			[168, 169, 170],
			[171, 172, 173],
			[174, 175, 176],
			[177, 178, 179],
			[180, 181, 182],
			[183, 184, 185],
			[186, 187, 188],
			[189, 190, 191],
			[192, 193, 194],
			[195, 196, 197],
			[198, 199, 200],
			[201, 202, 203],
			[204, 205, 206],
			[207, 208, 209],
			[210, 211, 212],
			[213, 214, 215],
			[216, 217, 218],
			[219, 220, 221],
			[222, 223, 224],
			[225, 226, 227],
			[228, 229, 230],
			[231, 232, 233],
			[234, 235, 236],
			[237, 238, 239],
			[240, 241, 242],
			[243, 244, 245],
			[246, 247, 248],
			[249, 250, 251],
			[252, 253, 254],
			[255, 256, 257],
			[258, 259, 260],
			[261, 262, 263],
			[264, 265, 266],
			[267, 268, 269],
			[270, 271, 272],
			[273, 274, 275],
			[276, 277, 278],
			[279, 280, 281],
			[282, 283, 284],
			[285, 286, 287],
			[288, 289, 290],
			[291, 292, 293],
			[294, 295, 296],
			[297, 298, 299],
			[300, 301, 302],
			[303, 304, 305],
			[306, 307, 308],
			[309, 310, 311],
			[312, 313, 314],
			[315, 316, 317],
			[318, 319, 320],
			[321, 322, 323],
			[324, 325, 326],
			[327, 328, 329],
			[330, 331, 332],
			[333, 334, 335],
			[336, 337, 338],
			[339, 340, 341],
			[342, 343, 344],
			[345, 346, 347],
			[348, 349, 350],
			[351, 352, 353],
			[354, 355, 356],
			[357, 358, 359],
			[360, 361, 362],
			[363, 364, 365],
			[366, 367, 368],
			[369, 370, 371],
			[372, 373, 374],
			[375, 376, 377],
			[378, 379, 380],
			[381, 382, 383],
			[384, 385, 386],
			[387, 388, 389],
			[390, 391, 392],
			[393, 394, 395],
			[396, 397, 398],
			[399, 400, 401],
			[402, 403, 404],
			[405, 406, 407],
			[408, 409, 410],
			[411, 412, 413],
			[414, 415, 416],
			[417, 418, 419],
			[420, 421, 422],
			[423, 424, 425],
			[426, 427, 428],
			[429, 430, 431],
			[432, 433, 434],
			[435, 436, 437],
			[438, 439, 440],
			[441, 442, 443],
			[444, 445, 446],
			[447, 448, 449],
			[450, 451, 452],
			[453, 454, 455],
			[456, 457, 458],
			[459, 460, 461],
			[462, 463, 464],
			[465, 466, 467],
			[468, 469, 470],
			[471, 472, 473],
			[474, 475, 476],
			[477, 478, 479],
			[480, 481, 482],
			[483, 484, 485],
			[486, 487, 488],
			[489, 490, 491],
			[492, 493, 494],
			[495, 496, 497],
			[498, 499, 500],
			[501, 502, 503],
			[504, 505, 506],
			[507, 508, 509],
			[510, 511, 512],
			[513, 514, 515],
			[516, 517, 518],
			[519, 520, 521],
			[522, 523, 524],
			[525, 526, 527],
			[528, 529, 530],
			[531, 532, 533],
			[534, 535, 536],
			[537, 538, 539],
			[540, 541, 542],
			[543, 544, 545],
			[546, 547, 548],
			[549, 550, 551],
			[552, 553, 554],
			[555, 556, 557],
			[558, 559, 560],
			[561, 562, 563],
			[564, 565, 566],
			[567, 568, 569],
			[570, 571, 572],
			[573, 574, 575],
			[576, 577, 578],
			[579, 580, 581],
			[582, 583, 584],
			[585, 586, 587],
			[588, 589, 590],
			[591, 592, 593],
			[594, 595, 596],
			[597, 598, 599],
			[600, 601, 602],
			[603, 604, 605],
			[606, 607, 608],
			[609, 610, 611],
			[612, 613, 614],
			[615, 616, 617],
			[618, 619, 620],
			[621, 622, 623],
			[624, 625, 626],
			[627, 628, 629],
			[630, 631, 632],
			[633, 634, 635],
			[636, 637, 638],
			[639, 640, 641],
			[642, 643, 644],
			[645, 646, 647],
			[648, 649, 650],
			[651, 652, 653],
			[654, 655, 656],
			[657, 658, 659],
			[660, 661, 662],
			[663, 664, 665],
			[666, 667, 668],
			[669, 670, 671],
			[672, 673, 674],
			[675, 676, 677],
			[678, 679, 680],
			[681, 682, 683],
			[684, 685, 686],
			[687, 688, 689],
			[690, 691, 692],
			[693, 694, 695],
			[696, 697, 698],
			[699, 700, 701],
			[702, 703, 704],
			[705, 706, 707],
			[708, 709, 710],
			[711, 712, 713],
			[714, 715, 716],
			[717, 718, 719],
			[720, 721, 722],
			[723, 724, 725],
			[726, 727, 728],
			[729, 730, 731],
			[732, 733, 734],
			[735, 736, 737],
			[738, 739, 740],
			[741, 742, 743],
			[744, 745, 746],
			[747, 748, 749],
			[750, 751, 752],
			[753, 754, 755],
			[756, 757, 758],
			[759, 760, 761],
			[762, 763, 764],
			[765, 766, 767],
			[768, 769, 770],
			[771, 772, 773],
			[774, 775, 776],
			[777, 778, 779],
			[780, 781, 782],
			[783, 784, 785],
			[786, 787, 788],
			[789, 790, 791],
			[792, 793, 794],
			[795, 796, 797],
			[798, 799, 800],
			[801, 802, 803],
			[804, 805, 806],
			[807, 808, 809],
			[810, 811, 812],
			[813, 814, 815],
			[816, 817, 818],
			[819, 820, 821],
			[822, 823, 824],
			[825, 826, 827]
		]
	);
}

invaders_v2_sheild4();
